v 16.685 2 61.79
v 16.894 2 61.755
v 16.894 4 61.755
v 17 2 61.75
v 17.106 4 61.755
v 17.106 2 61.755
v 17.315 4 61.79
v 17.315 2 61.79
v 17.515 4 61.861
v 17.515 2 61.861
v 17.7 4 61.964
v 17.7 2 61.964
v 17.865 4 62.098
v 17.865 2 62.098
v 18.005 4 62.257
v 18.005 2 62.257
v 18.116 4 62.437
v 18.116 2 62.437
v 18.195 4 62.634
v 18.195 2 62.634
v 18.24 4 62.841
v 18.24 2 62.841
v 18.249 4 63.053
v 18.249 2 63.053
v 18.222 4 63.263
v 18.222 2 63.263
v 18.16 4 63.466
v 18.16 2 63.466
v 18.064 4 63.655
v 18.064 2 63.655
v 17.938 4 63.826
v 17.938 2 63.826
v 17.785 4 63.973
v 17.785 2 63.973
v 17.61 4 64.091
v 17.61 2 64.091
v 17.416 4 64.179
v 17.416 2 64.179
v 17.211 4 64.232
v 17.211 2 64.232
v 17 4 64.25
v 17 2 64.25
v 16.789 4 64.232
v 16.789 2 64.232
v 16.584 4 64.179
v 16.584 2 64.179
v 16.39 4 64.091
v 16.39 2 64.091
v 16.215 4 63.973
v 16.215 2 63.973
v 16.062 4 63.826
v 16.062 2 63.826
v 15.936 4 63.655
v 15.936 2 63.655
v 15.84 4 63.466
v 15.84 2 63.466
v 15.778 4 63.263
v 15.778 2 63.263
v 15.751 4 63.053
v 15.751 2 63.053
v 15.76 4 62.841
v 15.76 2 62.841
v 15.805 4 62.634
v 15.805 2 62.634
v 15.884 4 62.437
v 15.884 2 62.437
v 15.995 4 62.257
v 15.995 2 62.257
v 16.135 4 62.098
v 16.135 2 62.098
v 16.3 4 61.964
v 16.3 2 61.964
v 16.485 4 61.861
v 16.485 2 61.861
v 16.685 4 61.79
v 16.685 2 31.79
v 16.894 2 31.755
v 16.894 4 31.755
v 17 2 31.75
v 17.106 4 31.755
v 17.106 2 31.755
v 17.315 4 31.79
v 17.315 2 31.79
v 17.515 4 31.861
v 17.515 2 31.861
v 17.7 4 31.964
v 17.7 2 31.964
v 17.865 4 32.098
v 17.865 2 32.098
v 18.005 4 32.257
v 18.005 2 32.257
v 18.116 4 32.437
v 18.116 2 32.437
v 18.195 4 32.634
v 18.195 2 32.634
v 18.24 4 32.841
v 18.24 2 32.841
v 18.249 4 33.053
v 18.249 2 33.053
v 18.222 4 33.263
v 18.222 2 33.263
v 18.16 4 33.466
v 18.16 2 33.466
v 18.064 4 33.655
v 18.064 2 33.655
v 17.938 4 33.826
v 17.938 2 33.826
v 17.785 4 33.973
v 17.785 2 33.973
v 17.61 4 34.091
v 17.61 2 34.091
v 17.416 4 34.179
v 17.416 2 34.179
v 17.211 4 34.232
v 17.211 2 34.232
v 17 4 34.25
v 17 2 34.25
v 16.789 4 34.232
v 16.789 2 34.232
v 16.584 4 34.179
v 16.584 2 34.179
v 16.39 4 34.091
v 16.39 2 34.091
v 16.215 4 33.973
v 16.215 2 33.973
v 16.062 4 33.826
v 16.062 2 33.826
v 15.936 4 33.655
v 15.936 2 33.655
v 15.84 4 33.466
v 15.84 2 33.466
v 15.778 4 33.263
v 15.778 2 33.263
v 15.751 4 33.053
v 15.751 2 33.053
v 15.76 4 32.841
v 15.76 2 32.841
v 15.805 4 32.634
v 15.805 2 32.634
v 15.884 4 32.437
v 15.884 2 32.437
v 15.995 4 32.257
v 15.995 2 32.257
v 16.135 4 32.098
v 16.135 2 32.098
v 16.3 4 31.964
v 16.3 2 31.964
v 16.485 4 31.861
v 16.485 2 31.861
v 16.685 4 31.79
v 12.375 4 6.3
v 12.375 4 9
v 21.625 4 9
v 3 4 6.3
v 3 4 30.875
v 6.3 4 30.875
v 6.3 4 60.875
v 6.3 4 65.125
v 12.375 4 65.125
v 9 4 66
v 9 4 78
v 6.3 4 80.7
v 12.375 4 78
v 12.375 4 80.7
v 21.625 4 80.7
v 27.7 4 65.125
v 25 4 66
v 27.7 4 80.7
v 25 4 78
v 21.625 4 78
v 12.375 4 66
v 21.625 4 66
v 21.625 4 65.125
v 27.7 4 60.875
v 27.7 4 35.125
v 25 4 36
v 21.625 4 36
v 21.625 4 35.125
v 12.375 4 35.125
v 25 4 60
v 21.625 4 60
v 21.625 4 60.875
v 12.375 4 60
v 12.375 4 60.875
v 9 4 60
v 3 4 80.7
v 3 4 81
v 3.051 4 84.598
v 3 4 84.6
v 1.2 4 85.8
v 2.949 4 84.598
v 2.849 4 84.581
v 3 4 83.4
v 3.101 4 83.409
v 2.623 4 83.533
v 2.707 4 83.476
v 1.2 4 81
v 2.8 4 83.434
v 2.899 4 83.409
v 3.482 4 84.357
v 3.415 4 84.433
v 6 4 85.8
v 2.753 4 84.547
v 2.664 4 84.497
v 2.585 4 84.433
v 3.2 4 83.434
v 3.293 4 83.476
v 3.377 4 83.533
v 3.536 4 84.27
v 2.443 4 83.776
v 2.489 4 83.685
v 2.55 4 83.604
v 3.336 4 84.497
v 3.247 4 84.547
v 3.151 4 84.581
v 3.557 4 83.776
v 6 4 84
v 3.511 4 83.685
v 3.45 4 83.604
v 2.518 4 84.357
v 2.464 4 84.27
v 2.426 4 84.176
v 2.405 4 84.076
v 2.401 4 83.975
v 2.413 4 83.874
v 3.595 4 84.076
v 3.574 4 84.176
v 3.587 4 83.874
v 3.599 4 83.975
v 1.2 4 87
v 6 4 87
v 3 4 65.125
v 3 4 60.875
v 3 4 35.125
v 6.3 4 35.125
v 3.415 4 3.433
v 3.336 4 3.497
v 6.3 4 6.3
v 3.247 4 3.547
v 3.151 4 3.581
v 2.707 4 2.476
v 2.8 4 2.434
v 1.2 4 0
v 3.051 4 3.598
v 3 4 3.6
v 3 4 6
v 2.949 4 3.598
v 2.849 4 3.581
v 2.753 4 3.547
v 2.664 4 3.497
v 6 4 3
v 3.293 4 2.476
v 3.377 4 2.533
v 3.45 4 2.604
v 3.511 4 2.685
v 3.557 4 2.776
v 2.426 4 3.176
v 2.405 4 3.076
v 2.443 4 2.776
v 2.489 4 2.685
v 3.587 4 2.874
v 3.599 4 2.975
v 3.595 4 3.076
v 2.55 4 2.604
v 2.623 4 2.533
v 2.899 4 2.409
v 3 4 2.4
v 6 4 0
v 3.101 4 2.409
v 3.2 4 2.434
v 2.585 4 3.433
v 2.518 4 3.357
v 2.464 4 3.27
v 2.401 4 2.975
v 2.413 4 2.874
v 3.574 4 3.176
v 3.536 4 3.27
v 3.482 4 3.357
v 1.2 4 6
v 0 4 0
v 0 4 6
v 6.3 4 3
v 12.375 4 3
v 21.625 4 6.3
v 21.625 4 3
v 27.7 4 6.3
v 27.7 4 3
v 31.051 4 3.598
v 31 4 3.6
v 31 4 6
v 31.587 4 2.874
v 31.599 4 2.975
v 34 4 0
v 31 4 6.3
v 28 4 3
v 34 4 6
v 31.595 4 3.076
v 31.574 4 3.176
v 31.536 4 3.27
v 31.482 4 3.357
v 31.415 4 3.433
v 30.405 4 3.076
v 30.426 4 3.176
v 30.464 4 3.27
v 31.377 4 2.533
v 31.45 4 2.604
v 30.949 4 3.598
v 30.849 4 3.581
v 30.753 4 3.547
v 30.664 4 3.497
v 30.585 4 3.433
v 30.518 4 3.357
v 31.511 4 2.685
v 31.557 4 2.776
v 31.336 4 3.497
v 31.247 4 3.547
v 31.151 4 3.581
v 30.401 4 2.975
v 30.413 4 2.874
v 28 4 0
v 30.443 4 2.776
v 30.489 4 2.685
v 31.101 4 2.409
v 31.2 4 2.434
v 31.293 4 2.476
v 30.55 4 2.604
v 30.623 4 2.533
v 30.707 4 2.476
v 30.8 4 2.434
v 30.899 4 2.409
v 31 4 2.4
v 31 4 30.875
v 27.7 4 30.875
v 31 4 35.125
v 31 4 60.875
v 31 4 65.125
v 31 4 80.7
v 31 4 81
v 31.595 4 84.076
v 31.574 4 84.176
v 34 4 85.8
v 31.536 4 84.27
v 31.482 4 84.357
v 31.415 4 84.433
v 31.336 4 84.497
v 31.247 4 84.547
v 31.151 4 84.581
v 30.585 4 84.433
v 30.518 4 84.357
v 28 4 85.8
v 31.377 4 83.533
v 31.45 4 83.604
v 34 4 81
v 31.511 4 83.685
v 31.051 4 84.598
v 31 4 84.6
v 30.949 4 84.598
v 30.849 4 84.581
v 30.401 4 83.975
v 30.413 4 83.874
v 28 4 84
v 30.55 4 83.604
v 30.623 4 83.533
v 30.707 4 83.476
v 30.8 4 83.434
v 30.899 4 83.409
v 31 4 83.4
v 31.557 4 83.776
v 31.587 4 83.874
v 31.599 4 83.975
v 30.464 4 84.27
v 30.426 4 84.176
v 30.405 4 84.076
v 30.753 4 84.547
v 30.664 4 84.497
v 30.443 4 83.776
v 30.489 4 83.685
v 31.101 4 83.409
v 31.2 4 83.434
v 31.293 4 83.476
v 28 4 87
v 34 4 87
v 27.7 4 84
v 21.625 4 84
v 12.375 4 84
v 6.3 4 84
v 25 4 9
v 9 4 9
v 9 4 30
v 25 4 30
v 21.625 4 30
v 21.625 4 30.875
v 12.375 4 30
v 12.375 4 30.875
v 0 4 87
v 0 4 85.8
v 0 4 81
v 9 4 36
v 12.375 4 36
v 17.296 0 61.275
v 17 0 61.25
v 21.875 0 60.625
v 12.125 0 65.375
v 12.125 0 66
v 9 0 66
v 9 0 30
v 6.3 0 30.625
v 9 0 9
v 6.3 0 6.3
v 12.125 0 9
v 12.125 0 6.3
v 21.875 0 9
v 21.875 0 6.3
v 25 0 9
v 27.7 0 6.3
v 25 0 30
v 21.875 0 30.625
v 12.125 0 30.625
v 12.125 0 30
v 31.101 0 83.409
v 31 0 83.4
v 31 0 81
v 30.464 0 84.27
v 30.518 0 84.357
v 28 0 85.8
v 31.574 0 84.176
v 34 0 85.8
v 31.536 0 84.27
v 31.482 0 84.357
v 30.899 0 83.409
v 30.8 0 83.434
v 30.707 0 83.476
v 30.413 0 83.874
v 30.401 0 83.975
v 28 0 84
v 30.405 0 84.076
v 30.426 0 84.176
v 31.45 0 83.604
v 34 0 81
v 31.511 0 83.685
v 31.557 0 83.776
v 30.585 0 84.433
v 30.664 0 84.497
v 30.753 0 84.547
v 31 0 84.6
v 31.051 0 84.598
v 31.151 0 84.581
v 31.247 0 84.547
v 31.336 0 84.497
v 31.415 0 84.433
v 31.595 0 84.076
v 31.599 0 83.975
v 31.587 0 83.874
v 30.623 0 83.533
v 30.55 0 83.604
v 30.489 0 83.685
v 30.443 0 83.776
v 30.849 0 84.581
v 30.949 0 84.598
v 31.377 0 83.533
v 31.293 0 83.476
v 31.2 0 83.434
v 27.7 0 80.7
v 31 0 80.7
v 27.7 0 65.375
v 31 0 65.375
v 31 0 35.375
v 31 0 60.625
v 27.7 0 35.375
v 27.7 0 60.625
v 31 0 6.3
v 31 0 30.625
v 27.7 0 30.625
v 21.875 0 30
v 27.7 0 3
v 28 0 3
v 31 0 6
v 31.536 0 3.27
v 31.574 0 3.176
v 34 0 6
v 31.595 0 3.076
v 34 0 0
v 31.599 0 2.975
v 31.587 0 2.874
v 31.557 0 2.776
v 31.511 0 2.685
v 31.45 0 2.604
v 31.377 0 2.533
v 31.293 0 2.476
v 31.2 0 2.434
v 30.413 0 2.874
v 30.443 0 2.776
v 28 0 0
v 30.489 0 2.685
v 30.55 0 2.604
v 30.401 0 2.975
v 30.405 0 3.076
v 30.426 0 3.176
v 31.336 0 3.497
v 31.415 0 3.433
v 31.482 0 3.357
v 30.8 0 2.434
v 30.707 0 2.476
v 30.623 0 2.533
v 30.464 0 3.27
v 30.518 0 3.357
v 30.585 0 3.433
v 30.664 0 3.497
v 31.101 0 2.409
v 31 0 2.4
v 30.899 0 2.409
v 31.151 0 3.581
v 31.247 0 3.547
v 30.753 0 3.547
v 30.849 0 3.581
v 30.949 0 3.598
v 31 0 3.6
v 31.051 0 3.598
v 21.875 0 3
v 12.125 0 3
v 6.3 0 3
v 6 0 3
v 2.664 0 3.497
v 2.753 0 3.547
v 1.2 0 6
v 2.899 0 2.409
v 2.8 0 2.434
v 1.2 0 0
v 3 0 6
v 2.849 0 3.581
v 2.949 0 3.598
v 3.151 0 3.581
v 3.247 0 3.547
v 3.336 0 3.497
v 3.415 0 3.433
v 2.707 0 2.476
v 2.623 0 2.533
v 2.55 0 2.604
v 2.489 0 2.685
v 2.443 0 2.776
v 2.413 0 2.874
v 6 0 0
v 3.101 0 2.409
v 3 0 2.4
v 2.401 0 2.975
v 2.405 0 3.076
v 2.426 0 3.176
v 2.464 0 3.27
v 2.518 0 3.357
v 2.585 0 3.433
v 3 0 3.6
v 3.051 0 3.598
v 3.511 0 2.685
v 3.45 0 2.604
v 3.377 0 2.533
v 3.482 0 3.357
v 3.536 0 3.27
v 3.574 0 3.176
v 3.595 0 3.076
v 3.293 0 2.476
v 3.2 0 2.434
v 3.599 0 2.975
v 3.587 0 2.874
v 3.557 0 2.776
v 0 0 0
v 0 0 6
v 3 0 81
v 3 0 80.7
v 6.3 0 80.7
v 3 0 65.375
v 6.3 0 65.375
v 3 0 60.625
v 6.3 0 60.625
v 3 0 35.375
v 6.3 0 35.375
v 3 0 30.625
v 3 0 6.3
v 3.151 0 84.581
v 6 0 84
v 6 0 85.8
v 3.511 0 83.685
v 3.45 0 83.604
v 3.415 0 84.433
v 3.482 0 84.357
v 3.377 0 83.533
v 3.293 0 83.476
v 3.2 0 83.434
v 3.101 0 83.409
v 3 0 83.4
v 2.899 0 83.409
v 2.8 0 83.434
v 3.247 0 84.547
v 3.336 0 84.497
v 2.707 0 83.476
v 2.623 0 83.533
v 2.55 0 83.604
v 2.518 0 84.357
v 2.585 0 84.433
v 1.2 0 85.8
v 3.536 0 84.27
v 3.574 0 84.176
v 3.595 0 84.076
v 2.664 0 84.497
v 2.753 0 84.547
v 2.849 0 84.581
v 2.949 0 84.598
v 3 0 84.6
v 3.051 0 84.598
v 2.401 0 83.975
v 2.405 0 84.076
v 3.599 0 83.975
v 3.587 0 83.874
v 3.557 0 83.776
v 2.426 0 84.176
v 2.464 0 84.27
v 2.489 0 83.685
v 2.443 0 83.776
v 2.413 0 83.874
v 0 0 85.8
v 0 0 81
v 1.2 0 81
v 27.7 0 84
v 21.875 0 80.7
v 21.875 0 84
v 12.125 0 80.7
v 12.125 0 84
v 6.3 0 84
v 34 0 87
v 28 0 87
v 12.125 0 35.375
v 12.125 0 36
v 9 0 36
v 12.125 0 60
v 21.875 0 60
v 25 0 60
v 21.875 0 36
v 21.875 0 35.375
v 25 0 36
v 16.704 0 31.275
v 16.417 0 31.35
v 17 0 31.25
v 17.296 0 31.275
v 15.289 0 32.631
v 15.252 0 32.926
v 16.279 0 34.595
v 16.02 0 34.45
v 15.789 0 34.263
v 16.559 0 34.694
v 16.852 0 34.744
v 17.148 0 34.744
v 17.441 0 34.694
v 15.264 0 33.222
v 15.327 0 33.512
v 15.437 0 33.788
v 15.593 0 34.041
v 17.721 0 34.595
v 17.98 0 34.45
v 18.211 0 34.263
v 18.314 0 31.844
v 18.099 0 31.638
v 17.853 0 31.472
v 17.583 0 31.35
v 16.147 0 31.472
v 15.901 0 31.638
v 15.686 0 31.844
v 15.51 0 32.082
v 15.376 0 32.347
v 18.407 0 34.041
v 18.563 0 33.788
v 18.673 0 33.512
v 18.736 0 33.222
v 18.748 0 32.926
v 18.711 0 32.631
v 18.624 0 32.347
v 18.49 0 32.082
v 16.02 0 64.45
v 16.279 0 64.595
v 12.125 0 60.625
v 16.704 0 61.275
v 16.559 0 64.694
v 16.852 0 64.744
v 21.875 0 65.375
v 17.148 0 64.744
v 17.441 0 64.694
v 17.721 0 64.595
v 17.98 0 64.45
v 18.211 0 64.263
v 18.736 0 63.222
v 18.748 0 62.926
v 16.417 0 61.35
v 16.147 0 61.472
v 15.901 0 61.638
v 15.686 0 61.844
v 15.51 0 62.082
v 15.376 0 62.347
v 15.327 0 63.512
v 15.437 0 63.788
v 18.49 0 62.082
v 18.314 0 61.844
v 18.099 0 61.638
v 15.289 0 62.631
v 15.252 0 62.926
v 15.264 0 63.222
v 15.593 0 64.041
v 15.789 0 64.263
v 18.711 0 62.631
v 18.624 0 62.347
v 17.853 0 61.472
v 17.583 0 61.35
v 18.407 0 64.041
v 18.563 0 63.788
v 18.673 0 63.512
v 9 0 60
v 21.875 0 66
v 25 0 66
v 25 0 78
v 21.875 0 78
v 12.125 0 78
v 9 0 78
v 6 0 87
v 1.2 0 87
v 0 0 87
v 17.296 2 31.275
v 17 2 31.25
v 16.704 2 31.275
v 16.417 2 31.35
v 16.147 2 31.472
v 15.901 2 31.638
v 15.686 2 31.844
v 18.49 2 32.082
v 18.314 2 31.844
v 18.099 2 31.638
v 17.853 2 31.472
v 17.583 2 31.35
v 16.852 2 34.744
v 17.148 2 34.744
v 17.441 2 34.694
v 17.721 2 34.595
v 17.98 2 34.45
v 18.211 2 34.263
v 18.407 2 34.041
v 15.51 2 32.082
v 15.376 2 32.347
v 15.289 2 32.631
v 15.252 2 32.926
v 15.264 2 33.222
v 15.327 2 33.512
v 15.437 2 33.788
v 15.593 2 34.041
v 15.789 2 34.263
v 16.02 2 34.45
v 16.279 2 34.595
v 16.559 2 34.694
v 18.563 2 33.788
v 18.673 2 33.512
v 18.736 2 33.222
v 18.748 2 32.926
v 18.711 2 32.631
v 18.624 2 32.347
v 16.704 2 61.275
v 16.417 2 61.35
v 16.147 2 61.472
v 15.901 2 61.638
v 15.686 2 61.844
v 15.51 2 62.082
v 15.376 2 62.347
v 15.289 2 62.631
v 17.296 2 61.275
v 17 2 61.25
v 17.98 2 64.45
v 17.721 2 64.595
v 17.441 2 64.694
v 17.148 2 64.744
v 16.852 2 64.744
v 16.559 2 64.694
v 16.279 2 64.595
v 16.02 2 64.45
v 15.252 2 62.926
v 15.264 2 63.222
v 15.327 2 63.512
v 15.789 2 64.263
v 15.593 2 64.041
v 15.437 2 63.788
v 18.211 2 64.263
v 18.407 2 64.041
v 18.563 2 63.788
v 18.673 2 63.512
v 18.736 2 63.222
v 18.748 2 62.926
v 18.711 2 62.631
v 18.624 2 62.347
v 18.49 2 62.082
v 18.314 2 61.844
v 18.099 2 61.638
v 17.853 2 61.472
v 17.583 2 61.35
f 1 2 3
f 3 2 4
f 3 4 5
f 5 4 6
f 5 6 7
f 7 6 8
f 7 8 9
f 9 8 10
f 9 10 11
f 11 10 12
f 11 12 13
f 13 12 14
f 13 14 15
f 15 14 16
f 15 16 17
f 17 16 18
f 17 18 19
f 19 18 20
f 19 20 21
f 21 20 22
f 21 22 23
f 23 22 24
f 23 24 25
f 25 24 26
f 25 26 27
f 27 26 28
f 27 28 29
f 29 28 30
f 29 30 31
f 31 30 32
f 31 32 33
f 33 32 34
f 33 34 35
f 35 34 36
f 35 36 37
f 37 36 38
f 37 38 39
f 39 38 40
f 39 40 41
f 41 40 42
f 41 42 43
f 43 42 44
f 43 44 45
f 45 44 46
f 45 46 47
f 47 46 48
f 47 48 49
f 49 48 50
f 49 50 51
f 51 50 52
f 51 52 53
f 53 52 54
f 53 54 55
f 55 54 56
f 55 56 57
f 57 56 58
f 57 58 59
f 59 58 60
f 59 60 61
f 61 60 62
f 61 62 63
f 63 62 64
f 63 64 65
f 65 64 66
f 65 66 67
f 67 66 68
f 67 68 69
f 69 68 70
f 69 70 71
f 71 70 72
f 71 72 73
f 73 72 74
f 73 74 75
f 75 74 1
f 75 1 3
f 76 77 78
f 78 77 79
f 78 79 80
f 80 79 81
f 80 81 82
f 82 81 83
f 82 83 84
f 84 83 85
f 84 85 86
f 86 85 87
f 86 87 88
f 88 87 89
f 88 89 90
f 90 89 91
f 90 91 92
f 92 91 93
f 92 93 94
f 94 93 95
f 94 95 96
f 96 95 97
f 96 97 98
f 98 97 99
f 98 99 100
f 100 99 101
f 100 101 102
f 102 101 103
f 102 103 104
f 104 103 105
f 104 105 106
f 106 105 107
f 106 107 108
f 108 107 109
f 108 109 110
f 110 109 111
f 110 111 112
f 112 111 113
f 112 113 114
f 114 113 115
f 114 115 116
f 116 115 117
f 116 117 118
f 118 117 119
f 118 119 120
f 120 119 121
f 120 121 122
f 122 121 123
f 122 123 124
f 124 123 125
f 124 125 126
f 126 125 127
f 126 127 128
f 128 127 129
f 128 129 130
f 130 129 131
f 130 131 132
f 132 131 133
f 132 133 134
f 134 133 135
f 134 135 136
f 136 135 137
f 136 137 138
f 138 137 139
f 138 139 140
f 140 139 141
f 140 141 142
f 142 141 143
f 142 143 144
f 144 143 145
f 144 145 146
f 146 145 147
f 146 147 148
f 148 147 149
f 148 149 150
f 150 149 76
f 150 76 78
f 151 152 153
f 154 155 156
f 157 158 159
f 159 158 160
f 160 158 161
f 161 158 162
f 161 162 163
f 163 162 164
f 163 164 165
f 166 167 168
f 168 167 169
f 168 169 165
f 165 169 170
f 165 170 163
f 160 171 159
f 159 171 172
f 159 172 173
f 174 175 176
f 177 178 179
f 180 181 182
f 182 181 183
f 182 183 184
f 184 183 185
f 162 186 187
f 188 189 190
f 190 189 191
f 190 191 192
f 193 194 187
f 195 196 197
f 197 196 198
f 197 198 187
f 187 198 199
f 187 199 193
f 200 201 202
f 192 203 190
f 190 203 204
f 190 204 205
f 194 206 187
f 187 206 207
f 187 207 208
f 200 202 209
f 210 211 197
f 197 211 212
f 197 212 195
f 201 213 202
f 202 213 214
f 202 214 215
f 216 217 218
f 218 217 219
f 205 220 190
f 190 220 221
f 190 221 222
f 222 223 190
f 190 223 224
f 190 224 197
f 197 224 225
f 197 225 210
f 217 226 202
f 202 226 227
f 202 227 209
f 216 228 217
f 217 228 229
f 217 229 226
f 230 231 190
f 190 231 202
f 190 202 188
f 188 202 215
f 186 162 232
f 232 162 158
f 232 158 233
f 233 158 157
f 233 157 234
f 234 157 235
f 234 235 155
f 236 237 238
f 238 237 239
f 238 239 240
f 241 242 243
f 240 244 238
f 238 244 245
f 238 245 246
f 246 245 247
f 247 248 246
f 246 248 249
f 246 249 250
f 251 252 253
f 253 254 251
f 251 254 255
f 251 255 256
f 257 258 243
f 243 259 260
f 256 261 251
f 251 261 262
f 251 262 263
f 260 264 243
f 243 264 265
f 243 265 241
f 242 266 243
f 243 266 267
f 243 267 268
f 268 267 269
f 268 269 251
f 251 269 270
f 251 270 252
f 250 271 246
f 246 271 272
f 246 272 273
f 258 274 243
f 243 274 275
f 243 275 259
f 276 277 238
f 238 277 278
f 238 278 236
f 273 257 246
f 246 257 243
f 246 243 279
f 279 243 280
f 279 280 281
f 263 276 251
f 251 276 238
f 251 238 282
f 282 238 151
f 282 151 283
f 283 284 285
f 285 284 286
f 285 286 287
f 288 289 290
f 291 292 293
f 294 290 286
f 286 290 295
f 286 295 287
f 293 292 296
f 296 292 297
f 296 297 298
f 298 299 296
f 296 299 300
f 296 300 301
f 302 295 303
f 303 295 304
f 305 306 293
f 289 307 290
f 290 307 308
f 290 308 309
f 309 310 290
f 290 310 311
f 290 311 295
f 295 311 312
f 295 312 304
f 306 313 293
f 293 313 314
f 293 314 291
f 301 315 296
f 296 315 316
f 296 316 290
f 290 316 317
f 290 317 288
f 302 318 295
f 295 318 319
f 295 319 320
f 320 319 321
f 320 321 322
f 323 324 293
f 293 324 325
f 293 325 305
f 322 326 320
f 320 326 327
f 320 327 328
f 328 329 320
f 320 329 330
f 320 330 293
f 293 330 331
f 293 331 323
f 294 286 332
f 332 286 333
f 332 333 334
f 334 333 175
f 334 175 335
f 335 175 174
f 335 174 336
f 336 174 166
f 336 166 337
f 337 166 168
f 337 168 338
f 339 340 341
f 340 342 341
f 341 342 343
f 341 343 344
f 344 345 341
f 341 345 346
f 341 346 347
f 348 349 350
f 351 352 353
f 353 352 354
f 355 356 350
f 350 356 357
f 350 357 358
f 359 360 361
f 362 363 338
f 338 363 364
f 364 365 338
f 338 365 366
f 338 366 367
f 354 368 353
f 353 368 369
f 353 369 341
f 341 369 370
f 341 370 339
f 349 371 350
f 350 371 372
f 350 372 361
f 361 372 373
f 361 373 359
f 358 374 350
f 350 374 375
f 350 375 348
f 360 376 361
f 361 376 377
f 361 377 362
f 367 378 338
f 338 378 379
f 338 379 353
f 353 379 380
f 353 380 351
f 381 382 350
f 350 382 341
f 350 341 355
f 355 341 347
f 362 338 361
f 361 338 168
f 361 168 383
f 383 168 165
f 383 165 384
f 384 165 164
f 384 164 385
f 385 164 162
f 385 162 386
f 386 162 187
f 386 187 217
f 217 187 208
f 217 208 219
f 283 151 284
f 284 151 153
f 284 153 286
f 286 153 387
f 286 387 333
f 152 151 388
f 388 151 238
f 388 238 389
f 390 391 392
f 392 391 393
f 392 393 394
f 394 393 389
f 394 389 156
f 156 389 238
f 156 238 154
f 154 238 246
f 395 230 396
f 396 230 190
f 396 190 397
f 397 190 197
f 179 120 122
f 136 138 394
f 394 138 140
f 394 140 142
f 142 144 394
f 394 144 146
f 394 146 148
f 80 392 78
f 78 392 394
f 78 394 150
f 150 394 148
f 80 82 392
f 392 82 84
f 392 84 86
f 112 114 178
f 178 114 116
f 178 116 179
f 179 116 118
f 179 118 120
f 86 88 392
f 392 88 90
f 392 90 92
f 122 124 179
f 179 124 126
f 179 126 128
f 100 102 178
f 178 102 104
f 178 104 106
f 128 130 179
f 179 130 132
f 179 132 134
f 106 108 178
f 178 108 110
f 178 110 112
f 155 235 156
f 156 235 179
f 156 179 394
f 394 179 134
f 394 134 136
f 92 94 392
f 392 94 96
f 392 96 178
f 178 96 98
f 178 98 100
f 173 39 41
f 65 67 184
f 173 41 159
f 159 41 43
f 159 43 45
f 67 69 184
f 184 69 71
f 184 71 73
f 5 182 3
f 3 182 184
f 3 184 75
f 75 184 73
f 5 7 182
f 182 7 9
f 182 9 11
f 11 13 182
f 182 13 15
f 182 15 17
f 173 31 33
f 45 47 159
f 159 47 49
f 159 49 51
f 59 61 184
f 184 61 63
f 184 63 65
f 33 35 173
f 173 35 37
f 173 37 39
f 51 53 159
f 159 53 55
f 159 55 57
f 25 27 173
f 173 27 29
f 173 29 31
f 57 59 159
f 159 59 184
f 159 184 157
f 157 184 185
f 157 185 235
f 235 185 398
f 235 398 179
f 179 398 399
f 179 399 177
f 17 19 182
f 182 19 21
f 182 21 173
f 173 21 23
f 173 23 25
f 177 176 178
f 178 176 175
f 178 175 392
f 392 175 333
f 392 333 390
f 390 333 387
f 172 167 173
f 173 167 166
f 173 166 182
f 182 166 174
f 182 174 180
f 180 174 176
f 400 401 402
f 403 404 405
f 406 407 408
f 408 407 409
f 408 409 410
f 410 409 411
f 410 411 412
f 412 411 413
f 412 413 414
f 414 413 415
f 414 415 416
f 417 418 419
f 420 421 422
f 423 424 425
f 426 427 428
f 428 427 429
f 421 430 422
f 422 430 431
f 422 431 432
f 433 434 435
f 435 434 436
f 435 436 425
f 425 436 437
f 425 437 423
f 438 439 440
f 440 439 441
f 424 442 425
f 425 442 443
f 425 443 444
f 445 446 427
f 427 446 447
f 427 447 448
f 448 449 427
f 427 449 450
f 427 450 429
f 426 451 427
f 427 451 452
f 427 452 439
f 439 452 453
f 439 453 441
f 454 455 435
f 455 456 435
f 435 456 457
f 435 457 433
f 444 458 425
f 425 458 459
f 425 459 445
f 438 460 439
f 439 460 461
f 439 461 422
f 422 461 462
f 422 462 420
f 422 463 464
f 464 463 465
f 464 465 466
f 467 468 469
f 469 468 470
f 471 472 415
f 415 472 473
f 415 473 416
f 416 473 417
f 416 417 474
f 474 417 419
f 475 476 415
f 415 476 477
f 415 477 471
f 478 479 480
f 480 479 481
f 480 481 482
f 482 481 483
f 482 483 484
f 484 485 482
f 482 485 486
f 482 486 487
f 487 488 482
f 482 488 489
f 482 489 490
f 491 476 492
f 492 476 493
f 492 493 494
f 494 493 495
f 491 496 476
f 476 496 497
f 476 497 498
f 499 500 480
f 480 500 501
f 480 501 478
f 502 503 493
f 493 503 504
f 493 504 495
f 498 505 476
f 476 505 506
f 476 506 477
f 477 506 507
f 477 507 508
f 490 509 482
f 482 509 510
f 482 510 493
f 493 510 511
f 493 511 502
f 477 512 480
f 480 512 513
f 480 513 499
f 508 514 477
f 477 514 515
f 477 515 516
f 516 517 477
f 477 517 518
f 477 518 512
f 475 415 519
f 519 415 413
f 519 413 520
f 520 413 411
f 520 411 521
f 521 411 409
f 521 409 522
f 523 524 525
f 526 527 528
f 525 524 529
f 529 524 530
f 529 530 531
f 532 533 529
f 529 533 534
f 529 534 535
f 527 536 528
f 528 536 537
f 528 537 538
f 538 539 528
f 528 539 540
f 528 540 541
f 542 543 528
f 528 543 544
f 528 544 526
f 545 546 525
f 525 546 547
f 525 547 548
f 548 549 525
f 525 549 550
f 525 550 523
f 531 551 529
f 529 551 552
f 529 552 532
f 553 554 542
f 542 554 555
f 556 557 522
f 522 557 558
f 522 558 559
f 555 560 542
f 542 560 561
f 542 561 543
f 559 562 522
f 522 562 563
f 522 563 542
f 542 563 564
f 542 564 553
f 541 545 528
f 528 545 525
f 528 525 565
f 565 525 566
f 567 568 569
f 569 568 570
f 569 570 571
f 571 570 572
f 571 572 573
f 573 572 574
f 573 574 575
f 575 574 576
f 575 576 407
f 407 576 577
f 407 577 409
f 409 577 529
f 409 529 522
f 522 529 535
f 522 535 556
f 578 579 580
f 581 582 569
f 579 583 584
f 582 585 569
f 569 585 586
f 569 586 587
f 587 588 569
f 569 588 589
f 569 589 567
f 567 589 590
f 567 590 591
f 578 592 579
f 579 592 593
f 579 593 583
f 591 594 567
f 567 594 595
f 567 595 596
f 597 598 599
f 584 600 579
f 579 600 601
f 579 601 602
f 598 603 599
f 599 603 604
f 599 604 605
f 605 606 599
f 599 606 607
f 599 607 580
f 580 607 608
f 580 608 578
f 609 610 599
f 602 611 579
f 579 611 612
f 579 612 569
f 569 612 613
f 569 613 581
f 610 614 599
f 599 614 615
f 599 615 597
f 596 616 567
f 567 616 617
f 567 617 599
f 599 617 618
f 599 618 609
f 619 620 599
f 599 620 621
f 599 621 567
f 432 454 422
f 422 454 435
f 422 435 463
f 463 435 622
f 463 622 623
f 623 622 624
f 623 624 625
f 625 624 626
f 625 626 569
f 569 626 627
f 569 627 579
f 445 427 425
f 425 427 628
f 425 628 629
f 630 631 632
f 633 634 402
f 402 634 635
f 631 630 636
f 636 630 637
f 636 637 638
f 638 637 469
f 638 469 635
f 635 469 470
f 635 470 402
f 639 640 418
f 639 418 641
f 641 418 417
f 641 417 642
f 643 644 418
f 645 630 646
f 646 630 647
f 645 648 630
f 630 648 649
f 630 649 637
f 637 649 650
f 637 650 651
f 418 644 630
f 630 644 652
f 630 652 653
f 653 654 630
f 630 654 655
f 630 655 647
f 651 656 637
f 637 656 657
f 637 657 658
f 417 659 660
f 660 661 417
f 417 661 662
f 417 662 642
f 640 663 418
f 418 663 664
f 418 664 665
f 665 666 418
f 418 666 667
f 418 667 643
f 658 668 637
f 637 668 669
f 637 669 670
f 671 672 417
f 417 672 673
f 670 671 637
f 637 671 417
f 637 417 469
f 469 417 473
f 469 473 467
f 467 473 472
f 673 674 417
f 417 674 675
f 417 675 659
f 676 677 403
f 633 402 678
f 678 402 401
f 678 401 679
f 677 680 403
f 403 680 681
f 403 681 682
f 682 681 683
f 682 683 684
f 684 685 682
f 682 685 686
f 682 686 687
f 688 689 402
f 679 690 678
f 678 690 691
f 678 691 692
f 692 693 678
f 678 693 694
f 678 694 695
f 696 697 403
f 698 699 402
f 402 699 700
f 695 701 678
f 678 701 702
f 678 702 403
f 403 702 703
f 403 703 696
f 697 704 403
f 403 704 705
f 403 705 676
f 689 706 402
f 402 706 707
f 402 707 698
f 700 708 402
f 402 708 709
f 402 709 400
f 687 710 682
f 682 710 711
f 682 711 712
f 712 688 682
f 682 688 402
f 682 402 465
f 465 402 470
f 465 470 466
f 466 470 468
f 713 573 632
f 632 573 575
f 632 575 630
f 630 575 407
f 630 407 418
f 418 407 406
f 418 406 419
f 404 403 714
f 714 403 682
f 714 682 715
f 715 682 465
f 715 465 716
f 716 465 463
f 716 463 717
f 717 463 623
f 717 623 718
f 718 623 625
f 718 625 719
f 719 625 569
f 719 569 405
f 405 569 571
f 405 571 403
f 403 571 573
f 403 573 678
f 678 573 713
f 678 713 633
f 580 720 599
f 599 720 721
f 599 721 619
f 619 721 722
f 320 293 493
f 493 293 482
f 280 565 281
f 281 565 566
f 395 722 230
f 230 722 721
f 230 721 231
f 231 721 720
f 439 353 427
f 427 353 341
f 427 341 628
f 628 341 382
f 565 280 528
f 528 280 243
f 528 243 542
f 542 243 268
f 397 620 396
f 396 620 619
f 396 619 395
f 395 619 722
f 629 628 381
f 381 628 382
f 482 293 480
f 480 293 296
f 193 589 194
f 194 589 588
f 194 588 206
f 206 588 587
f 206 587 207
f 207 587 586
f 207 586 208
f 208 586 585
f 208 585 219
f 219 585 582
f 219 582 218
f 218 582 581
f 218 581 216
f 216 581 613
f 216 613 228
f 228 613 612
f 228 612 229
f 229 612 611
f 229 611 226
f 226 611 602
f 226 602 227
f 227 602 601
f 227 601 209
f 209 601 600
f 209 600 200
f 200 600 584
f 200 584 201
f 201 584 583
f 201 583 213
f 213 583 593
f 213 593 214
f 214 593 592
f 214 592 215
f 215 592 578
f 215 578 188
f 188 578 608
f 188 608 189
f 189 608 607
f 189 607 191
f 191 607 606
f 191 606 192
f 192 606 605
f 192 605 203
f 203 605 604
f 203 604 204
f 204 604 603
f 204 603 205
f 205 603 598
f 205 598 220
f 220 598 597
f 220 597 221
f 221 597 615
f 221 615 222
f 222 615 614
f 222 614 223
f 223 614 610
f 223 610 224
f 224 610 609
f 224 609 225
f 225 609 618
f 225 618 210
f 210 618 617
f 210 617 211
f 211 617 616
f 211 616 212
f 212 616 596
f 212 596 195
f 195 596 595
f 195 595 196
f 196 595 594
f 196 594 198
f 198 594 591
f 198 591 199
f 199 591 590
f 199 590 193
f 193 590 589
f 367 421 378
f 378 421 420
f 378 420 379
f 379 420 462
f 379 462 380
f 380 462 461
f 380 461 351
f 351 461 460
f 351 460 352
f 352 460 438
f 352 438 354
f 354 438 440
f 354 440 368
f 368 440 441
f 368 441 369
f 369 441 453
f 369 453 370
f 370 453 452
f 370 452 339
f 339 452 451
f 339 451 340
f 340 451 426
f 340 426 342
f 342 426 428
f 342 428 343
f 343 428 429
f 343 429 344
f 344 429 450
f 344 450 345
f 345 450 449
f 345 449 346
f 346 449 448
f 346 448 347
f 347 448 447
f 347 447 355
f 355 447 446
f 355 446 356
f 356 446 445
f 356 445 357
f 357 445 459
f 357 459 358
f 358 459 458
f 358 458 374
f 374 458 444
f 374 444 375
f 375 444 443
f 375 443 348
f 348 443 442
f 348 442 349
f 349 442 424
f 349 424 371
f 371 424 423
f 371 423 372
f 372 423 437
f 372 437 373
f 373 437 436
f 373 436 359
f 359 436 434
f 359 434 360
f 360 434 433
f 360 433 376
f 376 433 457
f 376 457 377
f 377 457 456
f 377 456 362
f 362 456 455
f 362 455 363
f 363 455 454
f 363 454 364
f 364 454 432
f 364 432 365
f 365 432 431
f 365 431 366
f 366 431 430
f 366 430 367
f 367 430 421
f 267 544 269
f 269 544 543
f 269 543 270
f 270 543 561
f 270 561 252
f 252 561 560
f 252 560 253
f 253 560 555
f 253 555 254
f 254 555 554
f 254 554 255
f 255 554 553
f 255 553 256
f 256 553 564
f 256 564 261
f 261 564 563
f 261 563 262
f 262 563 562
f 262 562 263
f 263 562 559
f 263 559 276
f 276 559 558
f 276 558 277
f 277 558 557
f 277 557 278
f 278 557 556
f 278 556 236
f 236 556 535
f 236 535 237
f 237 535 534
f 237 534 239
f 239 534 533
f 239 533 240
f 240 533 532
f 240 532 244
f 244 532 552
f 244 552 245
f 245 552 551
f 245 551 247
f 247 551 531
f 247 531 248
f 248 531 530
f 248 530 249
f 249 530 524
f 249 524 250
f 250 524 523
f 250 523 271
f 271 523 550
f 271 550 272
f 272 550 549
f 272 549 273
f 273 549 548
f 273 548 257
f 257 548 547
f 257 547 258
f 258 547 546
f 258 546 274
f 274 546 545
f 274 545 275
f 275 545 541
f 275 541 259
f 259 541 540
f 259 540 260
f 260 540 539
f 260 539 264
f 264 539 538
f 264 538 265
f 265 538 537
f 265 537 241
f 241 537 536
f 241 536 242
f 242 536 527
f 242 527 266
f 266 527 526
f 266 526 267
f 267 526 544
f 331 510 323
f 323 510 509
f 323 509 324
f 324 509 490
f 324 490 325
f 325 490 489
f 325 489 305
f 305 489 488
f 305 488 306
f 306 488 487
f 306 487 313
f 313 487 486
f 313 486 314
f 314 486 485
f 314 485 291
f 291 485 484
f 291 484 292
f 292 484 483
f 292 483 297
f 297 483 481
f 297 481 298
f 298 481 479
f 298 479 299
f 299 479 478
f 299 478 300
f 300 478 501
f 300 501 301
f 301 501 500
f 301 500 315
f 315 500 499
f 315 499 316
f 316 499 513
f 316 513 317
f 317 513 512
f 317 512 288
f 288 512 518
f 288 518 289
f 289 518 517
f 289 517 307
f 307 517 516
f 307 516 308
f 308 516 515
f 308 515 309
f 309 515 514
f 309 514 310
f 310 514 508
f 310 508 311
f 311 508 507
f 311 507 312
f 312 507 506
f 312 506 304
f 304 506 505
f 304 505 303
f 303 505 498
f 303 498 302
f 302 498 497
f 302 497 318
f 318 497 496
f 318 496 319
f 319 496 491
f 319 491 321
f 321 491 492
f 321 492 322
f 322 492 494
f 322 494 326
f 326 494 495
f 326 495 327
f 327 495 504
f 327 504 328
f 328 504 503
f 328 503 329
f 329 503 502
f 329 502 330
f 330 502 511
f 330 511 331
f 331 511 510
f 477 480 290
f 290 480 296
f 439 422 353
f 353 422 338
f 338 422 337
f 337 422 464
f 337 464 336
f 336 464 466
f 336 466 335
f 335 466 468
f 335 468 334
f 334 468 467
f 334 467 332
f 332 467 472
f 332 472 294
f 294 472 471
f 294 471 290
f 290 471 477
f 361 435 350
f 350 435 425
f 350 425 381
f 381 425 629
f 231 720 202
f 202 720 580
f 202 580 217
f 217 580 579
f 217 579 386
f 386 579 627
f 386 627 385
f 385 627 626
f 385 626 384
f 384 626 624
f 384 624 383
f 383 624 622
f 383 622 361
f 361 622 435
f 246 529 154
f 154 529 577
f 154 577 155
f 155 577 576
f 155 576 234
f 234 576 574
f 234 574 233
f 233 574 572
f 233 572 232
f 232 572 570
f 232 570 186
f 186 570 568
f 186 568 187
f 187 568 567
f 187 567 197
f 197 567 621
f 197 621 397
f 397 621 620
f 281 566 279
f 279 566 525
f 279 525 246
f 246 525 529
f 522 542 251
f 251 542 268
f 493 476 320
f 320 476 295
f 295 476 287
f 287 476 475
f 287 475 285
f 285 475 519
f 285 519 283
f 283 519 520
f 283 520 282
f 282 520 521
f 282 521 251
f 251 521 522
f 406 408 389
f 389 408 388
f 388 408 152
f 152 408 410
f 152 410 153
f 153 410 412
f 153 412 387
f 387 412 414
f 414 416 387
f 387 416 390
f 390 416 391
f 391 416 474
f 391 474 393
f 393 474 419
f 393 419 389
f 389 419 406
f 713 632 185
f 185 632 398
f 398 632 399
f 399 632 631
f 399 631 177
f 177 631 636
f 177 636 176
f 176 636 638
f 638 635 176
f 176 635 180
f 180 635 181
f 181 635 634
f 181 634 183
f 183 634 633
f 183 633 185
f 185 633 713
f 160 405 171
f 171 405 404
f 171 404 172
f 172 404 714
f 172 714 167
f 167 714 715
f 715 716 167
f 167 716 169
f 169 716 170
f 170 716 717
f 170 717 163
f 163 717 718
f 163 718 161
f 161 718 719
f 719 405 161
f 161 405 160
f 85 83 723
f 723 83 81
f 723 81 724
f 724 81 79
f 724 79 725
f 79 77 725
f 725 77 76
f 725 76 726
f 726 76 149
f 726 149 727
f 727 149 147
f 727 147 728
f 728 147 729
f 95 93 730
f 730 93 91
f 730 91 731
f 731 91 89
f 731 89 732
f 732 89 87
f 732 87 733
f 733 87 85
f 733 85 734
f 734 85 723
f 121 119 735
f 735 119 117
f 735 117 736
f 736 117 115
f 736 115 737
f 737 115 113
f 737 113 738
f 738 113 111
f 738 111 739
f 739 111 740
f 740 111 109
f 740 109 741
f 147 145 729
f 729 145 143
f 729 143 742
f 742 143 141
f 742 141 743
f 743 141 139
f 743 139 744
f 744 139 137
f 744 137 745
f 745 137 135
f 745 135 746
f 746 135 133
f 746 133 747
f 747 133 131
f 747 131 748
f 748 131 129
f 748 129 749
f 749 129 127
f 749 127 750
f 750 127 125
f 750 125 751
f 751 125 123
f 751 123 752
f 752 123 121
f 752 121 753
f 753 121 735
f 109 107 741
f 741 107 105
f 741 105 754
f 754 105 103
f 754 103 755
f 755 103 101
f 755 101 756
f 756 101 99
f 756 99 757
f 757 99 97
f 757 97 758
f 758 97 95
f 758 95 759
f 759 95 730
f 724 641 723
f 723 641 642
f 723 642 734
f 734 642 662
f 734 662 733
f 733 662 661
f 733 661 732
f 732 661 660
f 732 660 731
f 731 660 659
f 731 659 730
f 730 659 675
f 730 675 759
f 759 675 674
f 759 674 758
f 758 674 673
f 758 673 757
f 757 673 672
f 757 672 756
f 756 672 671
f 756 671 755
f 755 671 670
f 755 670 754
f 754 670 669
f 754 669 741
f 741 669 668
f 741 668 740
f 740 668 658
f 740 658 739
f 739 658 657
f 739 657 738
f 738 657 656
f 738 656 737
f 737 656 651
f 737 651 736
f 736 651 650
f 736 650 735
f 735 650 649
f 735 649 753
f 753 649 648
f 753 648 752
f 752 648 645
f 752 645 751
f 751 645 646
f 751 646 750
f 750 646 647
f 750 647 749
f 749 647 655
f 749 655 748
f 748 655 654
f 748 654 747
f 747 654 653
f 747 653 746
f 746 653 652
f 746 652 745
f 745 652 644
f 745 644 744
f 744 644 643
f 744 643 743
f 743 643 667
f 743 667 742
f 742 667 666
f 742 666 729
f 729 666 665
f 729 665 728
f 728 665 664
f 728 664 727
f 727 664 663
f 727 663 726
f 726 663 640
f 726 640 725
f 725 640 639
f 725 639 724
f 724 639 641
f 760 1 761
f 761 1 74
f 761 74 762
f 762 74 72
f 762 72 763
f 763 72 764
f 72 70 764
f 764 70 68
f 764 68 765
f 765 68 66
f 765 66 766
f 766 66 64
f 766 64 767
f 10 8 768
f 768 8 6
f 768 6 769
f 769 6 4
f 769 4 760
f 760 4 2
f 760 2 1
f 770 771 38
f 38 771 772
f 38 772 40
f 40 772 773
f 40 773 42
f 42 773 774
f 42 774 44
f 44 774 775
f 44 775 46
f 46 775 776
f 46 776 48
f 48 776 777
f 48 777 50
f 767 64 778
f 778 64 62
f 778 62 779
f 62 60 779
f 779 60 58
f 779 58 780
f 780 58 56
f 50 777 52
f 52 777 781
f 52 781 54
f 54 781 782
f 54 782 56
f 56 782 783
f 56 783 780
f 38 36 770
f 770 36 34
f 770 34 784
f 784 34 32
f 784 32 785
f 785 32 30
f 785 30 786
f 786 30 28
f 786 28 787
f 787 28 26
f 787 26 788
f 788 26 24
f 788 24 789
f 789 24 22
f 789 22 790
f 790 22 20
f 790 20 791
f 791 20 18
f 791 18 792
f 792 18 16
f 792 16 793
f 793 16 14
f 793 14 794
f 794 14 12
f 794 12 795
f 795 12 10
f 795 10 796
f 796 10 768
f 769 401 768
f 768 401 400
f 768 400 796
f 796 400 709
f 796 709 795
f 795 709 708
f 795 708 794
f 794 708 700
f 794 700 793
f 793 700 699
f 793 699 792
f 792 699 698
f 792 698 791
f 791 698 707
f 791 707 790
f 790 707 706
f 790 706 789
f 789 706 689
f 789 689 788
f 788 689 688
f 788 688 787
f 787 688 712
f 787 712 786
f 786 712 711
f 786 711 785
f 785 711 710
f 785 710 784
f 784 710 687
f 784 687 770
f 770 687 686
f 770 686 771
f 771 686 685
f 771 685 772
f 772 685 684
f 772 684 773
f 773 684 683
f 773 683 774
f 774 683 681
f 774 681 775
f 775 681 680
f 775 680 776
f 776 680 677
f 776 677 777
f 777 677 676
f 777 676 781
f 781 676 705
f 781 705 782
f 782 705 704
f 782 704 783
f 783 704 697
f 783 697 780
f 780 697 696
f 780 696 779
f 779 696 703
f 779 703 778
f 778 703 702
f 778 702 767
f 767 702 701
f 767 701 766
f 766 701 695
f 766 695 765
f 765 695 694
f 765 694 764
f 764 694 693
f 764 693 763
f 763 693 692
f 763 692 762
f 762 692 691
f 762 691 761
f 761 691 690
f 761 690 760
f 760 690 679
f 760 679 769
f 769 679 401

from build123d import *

# Parameters (mm, degrees)
SKETCH_1_W          = 34
SKETCH_1_H          = 87
SKETCH_1_R          = 0.6
EXTRUDE_1_DEPTH     = 4
SKETCH_2_W          = 22
SKETCH_2_H          = 3
SKETCH_2_W_2        = 3
SKETCH_2_H_2        = 75
SKETCH_2_W_3        = 16
SKETCH_2_H_3        = 21
SKETCH_2_R          = 1.25
SKETCH_2_H_4        = 12
SKETCH_2_H_5        = 24
CUT_EXTRUDE_1_DEPTH = 94.493315269
SKETCH_3_R          = 1.75
CUT_EXTRUDE_2_DEPTH = 2


with BuildPart() as part:
    # 草图1 → 凸台-拉伸1 (new body)
    with BuildSketch(Plane(origin=(0, 0, 0), x_dir=(1, 0, 0), z_dir=(0, 1, 0))):
        with Locations((17, -43.5)):
            Rectangle(SKETCH_1_W, SKETCH_1_H)
        with Locations(Location((3, -3, 0), (0, 0, 270))):
            Circle(SKETCH_1_R, mode=Mode.SUBTRACT)
        with Locations(Location((31, -3, 0), (0, 0, 270))):
            Circle(SKETCH_1_R, mode=Mode.SUBTRACT)
        with Locations(Location((31, -84, 0), (0, 0, 270))):
            Circle(SKETCH_1_R, mode=Mode.SUBTRACT)
        with Locations(Location((3, -84, 0), (0, 0, 270))):
            Circle(SKETCH_1_R, mode=Mode.SUBTRACT)
    extrude(amount=EXTRUDE_1_DEPTH)

    # 草图2 → 切除-拉伸1 (cut, through all)
    with BuildSketch(Plane(origin=(0, 4, 0), x_dir=(1, 0, 0), z_dir=(0, 1, 0))):
        with Locations((17, -1.5)):
            Rectangle(SKETCH_2_W, SKETCH_2_H)
        with Locations((1.5, -43.5)):
            Rectangle(SKETCH_2_W_2, SKETCH_2_H_2)
        with Locations((32.5, -43.5)):
            Rectangle(SKETCH_2_W_2, SKETCH_2_H_2)
        with Locations((17, -85.5)):
            Rectangle(SKETCH_2_W, SKETCH_2_H)
        with Locations((17, -19.5)):
            Rectangle(SKETCH_2_W_3, SKETCH_2_H_3)
        with Locations(Location((17, -33, 0), (0, 0, 270))):
            Circle(SKETCH_2_R)
        with Locations((17, -72)):
            Rectangle(SKETCH_2_W_3, SKETCH_2_H_4)
        with Locations(Location((17, -63, 0), (0, 0, 270))):
            Circle(SKETCH_2_R)
        with Locations((17, -48)):
            Rectangle(SKETCH_2_W_3, SKETCH_2_H_5)
    extrude(amount=-CUT_EXTRUDE_1_DEPTH, mode=Mode.SUBTRACT)

    # 草图3 → 切除-拉伸2 (cut)
    with BuildSketch(Plane.XZ):
        with Locations(Location((17, 63, 0), (0, 0, 270))):
            Circle(SKETCH_3_R)
        with Locations(Location((17, 33, 0), (0, 0, 270))):
            Circle(SKETCH_3_R)
    extrude(amount=-CUT_EXTRUDE_2_DEPTH, mode=Mode.SUBTRACT)


solid = part.part
